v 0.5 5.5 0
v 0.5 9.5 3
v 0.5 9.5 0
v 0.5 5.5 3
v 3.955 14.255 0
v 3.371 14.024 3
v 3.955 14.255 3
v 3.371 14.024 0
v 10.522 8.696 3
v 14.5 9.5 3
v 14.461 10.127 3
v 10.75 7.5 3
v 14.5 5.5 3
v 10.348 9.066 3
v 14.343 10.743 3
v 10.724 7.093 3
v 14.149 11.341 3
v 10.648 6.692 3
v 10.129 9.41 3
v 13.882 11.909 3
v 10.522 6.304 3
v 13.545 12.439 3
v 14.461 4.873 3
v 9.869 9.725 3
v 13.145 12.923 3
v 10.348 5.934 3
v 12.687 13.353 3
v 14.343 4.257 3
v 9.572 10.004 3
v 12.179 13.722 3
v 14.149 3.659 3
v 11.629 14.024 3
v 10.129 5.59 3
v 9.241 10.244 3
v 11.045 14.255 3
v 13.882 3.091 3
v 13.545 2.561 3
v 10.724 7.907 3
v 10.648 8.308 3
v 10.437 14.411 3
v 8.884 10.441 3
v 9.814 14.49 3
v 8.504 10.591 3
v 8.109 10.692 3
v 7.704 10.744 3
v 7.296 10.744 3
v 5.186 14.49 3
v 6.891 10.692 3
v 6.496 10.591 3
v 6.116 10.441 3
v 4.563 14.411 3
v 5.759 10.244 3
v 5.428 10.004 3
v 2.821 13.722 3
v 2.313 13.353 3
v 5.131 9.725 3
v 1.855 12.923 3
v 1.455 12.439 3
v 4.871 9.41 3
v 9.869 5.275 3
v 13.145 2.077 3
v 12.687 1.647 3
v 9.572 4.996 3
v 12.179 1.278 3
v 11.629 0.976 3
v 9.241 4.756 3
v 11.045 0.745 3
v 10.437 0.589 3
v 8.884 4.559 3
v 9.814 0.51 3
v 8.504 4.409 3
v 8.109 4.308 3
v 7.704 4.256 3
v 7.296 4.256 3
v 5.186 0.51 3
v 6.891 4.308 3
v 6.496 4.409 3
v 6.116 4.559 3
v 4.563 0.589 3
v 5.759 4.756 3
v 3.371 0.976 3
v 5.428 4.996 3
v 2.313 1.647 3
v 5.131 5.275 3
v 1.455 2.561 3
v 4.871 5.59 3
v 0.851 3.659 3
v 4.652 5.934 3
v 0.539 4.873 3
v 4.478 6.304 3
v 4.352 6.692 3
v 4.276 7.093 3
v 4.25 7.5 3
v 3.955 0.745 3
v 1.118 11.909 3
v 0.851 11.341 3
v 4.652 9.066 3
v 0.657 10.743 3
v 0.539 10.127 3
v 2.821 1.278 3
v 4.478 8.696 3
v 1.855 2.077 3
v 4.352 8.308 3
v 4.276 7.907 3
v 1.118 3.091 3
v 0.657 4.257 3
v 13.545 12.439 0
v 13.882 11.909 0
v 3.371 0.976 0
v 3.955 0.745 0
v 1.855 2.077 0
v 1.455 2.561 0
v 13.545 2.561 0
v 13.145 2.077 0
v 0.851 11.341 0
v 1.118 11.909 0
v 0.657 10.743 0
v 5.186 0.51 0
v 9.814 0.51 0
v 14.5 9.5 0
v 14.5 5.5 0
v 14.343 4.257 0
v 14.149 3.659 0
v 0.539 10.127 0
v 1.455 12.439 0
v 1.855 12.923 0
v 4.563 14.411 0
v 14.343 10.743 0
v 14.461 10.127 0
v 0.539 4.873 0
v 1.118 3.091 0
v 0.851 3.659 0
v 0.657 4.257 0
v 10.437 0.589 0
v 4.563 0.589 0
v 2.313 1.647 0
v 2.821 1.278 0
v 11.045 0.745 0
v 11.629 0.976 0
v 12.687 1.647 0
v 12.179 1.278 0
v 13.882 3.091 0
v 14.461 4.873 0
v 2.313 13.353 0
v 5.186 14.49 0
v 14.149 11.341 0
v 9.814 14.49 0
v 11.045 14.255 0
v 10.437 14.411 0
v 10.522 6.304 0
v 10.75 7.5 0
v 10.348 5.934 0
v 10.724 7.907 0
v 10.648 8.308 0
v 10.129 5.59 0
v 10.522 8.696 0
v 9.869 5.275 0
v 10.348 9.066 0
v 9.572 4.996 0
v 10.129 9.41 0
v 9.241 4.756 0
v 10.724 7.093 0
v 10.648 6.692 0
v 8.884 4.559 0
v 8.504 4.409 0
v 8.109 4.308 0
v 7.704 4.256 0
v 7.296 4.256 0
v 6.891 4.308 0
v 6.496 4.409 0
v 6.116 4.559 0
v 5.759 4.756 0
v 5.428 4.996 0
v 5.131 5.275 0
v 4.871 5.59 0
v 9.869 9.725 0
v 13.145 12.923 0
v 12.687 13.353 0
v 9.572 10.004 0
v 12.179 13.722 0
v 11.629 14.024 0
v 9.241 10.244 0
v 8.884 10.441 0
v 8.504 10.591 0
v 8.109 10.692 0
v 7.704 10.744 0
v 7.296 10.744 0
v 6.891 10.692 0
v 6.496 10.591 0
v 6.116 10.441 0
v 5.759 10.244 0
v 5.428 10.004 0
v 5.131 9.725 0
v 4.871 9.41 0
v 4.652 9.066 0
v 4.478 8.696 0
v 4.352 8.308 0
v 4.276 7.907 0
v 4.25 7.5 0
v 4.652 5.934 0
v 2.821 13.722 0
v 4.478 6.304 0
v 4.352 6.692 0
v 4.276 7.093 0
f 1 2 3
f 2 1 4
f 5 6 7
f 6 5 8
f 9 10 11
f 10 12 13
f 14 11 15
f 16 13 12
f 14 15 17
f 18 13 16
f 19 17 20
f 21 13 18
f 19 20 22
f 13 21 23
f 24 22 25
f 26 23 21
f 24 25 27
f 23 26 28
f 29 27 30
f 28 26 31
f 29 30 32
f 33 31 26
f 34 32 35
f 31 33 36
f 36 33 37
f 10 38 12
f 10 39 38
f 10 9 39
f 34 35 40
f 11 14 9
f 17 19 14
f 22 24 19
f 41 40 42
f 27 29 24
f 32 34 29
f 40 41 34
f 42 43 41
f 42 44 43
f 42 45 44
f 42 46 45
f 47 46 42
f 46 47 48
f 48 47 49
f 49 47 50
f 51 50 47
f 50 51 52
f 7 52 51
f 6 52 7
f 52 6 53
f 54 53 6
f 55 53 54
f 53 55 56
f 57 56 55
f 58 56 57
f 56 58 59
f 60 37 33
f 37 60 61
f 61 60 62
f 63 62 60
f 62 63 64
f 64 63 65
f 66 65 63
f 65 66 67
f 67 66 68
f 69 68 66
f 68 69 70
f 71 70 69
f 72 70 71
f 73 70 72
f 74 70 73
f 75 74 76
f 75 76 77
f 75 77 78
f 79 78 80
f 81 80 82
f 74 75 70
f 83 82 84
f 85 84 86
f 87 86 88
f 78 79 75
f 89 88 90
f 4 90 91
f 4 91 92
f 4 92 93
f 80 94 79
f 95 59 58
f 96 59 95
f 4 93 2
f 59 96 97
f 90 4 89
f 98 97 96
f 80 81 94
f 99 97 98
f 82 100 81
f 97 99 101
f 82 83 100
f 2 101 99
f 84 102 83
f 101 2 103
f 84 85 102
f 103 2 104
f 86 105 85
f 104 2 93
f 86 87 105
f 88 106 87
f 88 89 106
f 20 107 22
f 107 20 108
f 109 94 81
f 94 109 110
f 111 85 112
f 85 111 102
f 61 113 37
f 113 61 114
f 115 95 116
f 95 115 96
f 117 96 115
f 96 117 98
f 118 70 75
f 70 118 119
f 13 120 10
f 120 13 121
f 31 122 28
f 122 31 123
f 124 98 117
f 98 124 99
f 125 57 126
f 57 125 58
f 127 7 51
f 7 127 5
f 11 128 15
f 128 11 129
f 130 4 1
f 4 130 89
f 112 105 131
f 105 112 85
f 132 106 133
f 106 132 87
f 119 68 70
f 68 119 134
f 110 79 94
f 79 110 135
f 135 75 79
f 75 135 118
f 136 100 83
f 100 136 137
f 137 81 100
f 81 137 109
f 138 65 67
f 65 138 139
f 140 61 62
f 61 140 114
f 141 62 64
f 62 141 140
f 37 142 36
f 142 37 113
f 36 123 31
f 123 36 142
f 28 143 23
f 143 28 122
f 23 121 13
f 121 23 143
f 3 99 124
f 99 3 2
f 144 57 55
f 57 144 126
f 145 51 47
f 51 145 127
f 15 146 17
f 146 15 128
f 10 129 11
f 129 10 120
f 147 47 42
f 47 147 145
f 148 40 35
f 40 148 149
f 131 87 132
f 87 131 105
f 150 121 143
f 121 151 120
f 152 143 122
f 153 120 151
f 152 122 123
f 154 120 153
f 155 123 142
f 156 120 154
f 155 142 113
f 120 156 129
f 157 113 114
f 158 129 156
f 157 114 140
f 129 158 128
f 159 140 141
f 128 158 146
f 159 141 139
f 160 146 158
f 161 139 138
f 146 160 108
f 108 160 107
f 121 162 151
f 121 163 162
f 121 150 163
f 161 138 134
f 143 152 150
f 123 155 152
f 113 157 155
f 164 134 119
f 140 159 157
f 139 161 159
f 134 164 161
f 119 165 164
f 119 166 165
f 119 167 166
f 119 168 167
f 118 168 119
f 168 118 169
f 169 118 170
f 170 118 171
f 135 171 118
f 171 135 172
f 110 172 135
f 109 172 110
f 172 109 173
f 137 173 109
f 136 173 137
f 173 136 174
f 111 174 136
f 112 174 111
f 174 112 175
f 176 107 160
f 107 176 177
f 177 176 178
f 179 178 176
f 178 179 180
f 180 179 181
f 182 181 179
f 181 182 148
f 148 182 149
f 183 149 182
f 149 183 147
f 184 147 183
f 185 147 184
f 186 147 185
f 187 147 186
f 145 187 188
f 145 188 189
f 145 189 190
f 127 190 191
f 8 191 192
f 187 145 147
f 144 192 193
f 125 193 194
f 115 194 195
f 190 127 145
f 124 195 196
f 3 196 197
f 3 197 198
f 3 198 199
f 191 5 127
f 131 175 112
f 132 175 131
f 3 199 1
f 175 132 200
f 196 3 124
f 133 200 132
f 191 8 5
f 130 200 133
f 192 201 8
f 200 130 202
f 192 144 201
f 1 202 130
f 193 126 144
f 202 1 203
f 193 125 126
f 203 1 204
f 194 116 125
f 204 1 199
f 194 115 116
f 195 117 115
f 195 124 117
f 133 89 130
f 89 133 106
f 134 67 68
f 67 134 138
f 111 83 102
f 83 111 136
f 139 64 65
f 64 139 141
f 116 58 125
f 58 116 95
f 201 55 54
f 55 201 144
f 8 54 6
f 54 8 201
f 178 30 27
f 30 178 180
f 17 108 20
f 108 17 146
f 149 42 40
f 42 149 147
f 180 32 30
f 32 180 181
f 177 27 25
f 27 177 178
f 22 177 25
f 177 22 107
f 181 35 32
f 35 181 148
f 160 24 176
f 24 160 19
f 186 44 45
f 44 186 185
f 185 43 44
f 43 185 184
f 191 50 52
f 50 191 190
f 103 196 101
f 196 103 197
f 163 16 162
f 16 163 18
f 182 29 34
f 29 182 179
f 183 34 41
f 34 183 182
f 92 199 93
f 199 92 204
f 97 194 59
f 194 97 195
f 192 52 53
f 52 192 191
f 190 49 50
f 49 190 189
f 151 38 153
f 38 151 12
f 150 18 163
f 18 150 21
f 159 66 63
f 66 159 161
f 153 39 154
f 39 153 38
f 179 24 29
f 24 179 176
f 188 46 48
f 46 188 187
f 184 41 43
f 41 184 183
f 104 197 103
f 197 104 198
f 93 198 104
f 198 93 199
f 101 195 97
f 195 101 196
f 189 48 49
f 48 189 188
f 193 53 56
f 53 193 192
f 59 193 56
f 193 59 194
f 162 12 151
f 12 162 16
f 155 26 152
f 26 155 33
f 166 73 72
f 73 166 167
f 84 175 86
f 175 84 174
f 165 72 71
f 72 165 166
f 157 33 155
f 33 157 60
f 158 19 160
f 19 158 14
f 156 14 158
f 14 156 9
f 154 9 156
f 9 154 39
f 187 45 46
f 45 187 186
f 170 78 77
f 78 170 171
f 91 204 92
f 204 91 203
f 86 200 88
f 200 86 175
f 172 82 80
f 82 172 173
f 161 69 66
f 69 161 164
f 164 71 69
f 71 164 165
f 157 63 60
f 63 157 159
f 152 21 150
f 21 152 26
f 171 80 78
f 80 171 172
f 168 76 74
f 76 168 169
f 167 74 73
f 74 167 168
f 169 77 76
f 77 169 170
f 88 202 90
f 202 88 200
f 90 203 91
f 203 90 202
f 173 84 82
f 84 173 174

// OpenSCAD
// Generated by SolidPython 1.1.3 on 2023-01-09 14:52:18
$fn = 50;


difference() {
	union() {
		translate(v = [7.5000000000, 7.5000000000, 0]) {
			rotate(a = [0, 0, 0]) {
				hull() {
					translate(v = [-2.0000000000, 2.0000000000, 0]) {
						rotate(a = [0, 0, 0]) {
							translate(v = [0, 0, 0]) {
								rotate(a = [0, 0, 0]) {
									cylinder(h = 3, r = 5);
								}
							}
						}
					}
					translate(v = [2.0000000000, 2.0000000000, 0]) {
						rotate(a = [0, 0, 0]) {
							translate(v = [0, 0, 0]) {
								rotate(a = [0, 0, 0]) {
									cylinder(h = 3, r = 5);
								}
							}
						}
					}
					translate(v = [-2.0000000000, -2.0000000000, 0]) {
						rotate(a = [0, 0, 0]) {
							translate(v = [0, 0, 0]) {
								rotate(a = [0, 0, 0]) {
									cylinder(h = 3, r = 5);
								}
							}
						}
					}
					translate(v = [2.0000000000, -2.0000000000, 0]) {
						rotate(a = [0, 0, 0]) {
							translate(v = [0, 0, 0]) {
								rotate(a = [0, 0, 0]) {
									cylinder(h = 3, r = 5);
								}
							}
						}
					}
				}
			}
		}
	}
	union() {
		translate(v = [7.5000000000, 7.5000000000, 0]) {
			rotate(a = [0, 0, 0]) {
				translate(v = [0, 0, -50]) {
					rotate(a = [0, 0, 0]) {
						cylinder(h = 100, r = 3.2500000000);
					}
				}
			}
		}
	}
}
/***********************************************
*********      SolidPython code:      **********
************************************************
 
from solid import *
import os
import subprocess

import oomB

import opsc_library_gen

mode = "laser"
#mode = "3d_print"

defined_objects = {}

radius_dict = {}
countersunk_dict = {}


def set_mode(m):
    global mode
    mode = m
    radius_dict['M6'] = 6.5/2
    radius_dict['M3'] = 3.3/2
    if mode == "laser":
        radius_dict['M6'] = 6/2
        radius_dict['M3'] = 3/2

    countersunk_dict['M3'] = {}
    countersunk_dict['M3']['little_rad'] = radius_dict['M3']
    countersunk_dict['M3']['big_rad'] = (5.5+0.6)/2
    if mode == "laser":
        countersunk_dict['M3']['big_rad'] = (4.75+0.6)/2
        countersunk_dict['M3']['little_rad'] = (4.75+0.6)/2

    countersunk_dict['M3']['height'] = 1.7


def opsc_make_object(filename, objects, save_type="none",resolution=50, layers = 1, tilediff = 200, mode="laser"):
    set_mode(mode)
    save_type = save_type.lower()
    os.makedirs(os.path.dirname(filename), exist_ok=True)
    final_object = opsc_get_object(objects)
    # Save the final object to the specified filename    
    scad_render_to_file(final_object, filename, file_header='$fn = %s;' % resolution, include_orig_code=True)
    if mode == "laser":
        filename_laser = filename.replace(".scad","-flat.scad")
        scad_render_to_file(getLaser(final_object, layers=layers, tilediff=tilediff), filename_laser, file_header='$fn = %s;' % resolution, include_orig_code=True)
        if save_type == "all":
            saveToAll(filename_laser)
        elif save_type == "dxf":
            saveToDxf(filename_laser)
    if save_type == "all":
        saveToAll(filename)
    elif save_type == "dxf":
        saveToDxf(filename)


def opsc_get_object(objects):
    # Create the solidpython objects
    positive_objects = [get_opsc_item(obj) for obj in objects if obj['type'] == 'positive']
    negative_objects = [get_opsc_item(obj) for obj in objects if obj['type'] == 'negative']
    # Union the positive objects
    positive_object = union()(*positive_objects)
    # Union the negative objects
    negative_object = union()(*negative_objects)
    # Create the final object by subtracting the negative objects from the positive objects
    return difference()(positive_object, negative_object)

def get_opsc_item(params):
    # A dictionary to map radius string values to numerical values
    #radius_dict = {'small': 5, 'medium': 10, 'large': 15}
    # An array of function names for basic shapes
    basic_shapes = ['cube', 'sphere', 'cylinder']
    
    # An array of function names for other shapes
    other_shapes = ['hole', 'slot', 'rounded_rectangle', 'countersunk']
    


    # Convert radius to r if present, and remove radius from the params dictionary
    if 'radius' in params:
        if isinstance(params['radius'], str):
            # Use the radius_dict to map the radius string value to a numerical value
            params['r'] = radius_dict[params['radius']]
        else:
            params['r'] = params['radius']
        del params['radius']
    

    # Check if the object type is a basic shape
    if params['shape'] in basic_shapes:
        # Remove shape and unexpected dictionary values
        allowed_keys = {'size', 'r', 'r1', 'r2', 'd', 'h', 'rw', 'rh', 'dw', 'dh'}
        shape_params = {k: v for k, v in params.items() if k in allowed_keys}

        # Call the corresponding function for the shape parameter, using ** notation to pass the shape_params dictionary as keyword arguments
        return get_opsc_transform(params,globals()[params['shape']](**shape_params))
    
    # If the object type is not a basic shape, check if it's a defined object or one of the other shapes
    elif params['shape'] in other_shapes:
        # Call the corresponding function for the shape parameter, passing the params dictionary as an argument
        p2 = copy.deepcopy(params)
        p2["pos"] = [0,0,0]
        return get_opsc_transform(params,globals()[params['shape']](p2))
    
    # If the object is not a basic shape or a defined object, try to import it from a .scad file
    else:
        obj = defined_objects[params['shape']]
        return get_opsc_transform(params,obj)

def get_opsc_transform(params, solid_obj):
    # Rotate the object based on the 'rot' field in the params dictionary, or the 'rotX', 'rotY', and 'rotZ' fields if 'rot' is not present
    rot = params.get('rot', [])
    if rot:
        rotX, rotY, rotZ = rot
    else:
        rotX = params.get('rotX', 0)
        rotY = params.get('rotY', 0)
        rotZ = params.get('rotZ', 0)
    solid_obj = rotate([rotX, rotY, rotZ])(solid_obj)

    # Translate the object based on the 'pos' field in the params dictionary, or the 'x', 'y', and 'z' fields if 'pos' is not present
    pos = params.get('pos', [])
    if pos:
        x, y, z = pos
    else:
        x = params.get('x', 0)
        y = params.get('y', 0)
        z = params.get('z', 0)
    solid_obj = translate([x, y, z])(solid_obj)
    return solid_obj


import random

def opsc_easy_array(type, shape, repeats, pos_start, shift_arr, **kwargs):
    for i in range(0,3):
        repeats.append(1)
        pos_start.append(0)
        shift_arr.append(0)
    return_objects = []

    for x in range(0,repeats[0]):
        for y in range(0,repeats[1]):
            for z in range(0,repeats[2]):
                return_objects.append(opsc_easy(type, shape, pos=[pos_start[0]+x*shift_arr[0],pos_start[1]+y*shift_arr[1],pos_start[2]+z*shift_arr[2]], **kwargs))
    return return_objects                



def opsc_easy(type, shape, **kwargs):
    obj = {
        'type': type,
        'shape': shape
    }
    for param in ['size', 'r', 'r1', 'r2', 'd', 'h', 'rw', 'rh', 'dw', 'dh', 'pos', 'x', 'y', 'z', 'rot', 'rotX', 'rotY', 'rotZ', "w"]:
        if param in kwargs:
            obj[param] = kwargs[param]
    return obj

def hole(params):
    p2 = copy.deepcopy(params)  
    # Check if the radius is a string and replace it with the corresponding value from the dictionary
    if isinstance(p2['r'], str):
        p2['r'] = radius_dict[p2['r']]
    
    # Set the height to 100 if not specified
    if 'h' not in p2:
        p2['h'] = 100
        p2["pos"] = [0,0,-50]
    p2["center"] = True
    # Create the cylinder object
    p2["shape"] = "cylinder"
    p2["type"] = "positive"

    return get_opsc_item(p2)

import copy

def countersunk(params):
    p2 = copy.deepcopy(params)
    counter_rad = p2['r']
    p2['r'] = radius_dict[p2['r']]
    hp = copy.deepcopy(p2)
    hp["type"] = "positive"
    hp["shape"] = "hole"
    del hp["rot"]
    hol = get_opsc_item(hp)
    
    cp = copy.deepcopy(p2)
    cp["h"] = countersunk_dict[counter_rad]["height"]
    cp["r2"] = countersunk_dict[counter_rad]["little_rad"]
    cp["r1"] = countersunk_dict[counter_rad]["big_rad"]
    del cp["r"]
    del cp["rot"]
    cp["type"] = "positive"
    cp["shape"] = "cylinder"
    cp["pos"] = [0,0,0]

    top = get_opsc_item(cp)
    return union()(hol,top)



def slot(params):  
    p2 = copy.deepcopy(params) 
    if isinstance(p2['r'], str):
        p2['r'] = radius_dict[p2['r']]
    p2["type"] = "positive"
    p2["shape"] = "hole"
    del p2["rot"]
    p2["pos"] = [0,0,0]
    left = copy.deepcopy(p2)
    right = copy.deepcopy(p2)
    left["pos"][0] = p2["w"] / 2 - p2["r"] 
    
    right["pos"][0] = -p2["w"] / 2 + p2["r"] 
    pass
    leftObj = get_opsc_item(left)
    rightObj = get_opsc_item(right)
    return hull()(leftObj, rightObj)

def rounded_rectangle(params):   
    p2 = copy.deepcopy(params) 
    p2["h"] = p2["size"][2]
    p2["pos"] = p2.get("pos", [0, 0, 0]) 
    p2["type"] = "positive"
    p2["shape"] = "hole"
    p2["pos"] = [0,0,0]
    
    if 'rot' in p2:
        del p2["rot"]   
    if 'r' not in p2:
        p2["r"] = 5 
    tl = copy.deepcopy(p2)
    tr = copy.deepcopy(p2)
    bl = copy.deepcopy(p2)
    br = copy.deepcopy(p2)
    tl["pos"][0] = -(p2["size"][0] - p2["r"]*2)/2
    tl["pos"][1] = (p2["size"][1] - p2["r"]*2)/2
    tr["pos"][0] = (p2["size"][0] - p2["r"]*2)/2
    tr["pos"][1] = (p2["size"][1] - p2["r"]*2)/2
    bl["pos"][0] = -(p2["size"][0] - p2["r"]*2)/2
    bl["pos"][1] = -(p2["size"][1] - p2["r"]*2)/2
    br["pos"][0] = (p2["size"][0] - p2["r"]*2)/2
    br["pos"][1] = -(p2["size"][1] - p2["r"]*2)/2
    del tl["size"]
    del tr["size"]
    del bl["size"]
    del br["size"]
    tlo = get_opsc_item(tl)
    tro = get_opsc_item(tr)
    blo = get_opsc_item(bl)
    bro = get_opsc_item(br)    
    return hull()(tlo, tro, blo, bro)



def import_scad_object(filename):
    # Import the .scad file and convert it to a solidpython object
    #filename = "parts"
    obj = import_scad(filename)
    return obj.main()
    


import os
import solid as solidpython

# A dictionary to store the defined objects


def load_scad_objects():
    opsc_library_gen.gen_library(defined_objects)

import random

def test(num_objects):
    objects = []
    for i in range(num_objects):
        # Choose a random shape
        #shape = random.choice(['cube', 'sphere', 'cylinder', 'hole', 'slot', "rounded_rectangle"])
        shape = random.choice(["rounded_rectangle"])

        # Choose a random type
        type = random.choice(['positive', 'negative'])
        
        # Create an empty object dictionary
        obj = {'shape': shape, 'type': type}
        
        # Set shape-specific parameters
        if obj['shape'] in ['cube']:
            obj['size'] =  [random.uniform(5, 15), random.uniform(5, 15), random.uniform(5, 15)]
        if obj['shape'] in ['rounded_rectangle']:
            obj['size'] =  [random.uniform(5, 15), random.uniform(5, 15), random.uniform(5, 15)]
            obj['r'] = random.uniform(0.5, 5)
        elif obj['shape'] == 'sphere':
            obj['r'] = random.uniform(5, 15)
        elif obj['shape'] in ['cylinder', 'hole']:
            obj['r'] = random.uniform(0.5, 5)
            obj['h'] = random.uniform(5, 15)
        elif obj['shape'] == 'slot':
            obj['r'] = random.uniform(0.5, 5)
            obj['h'] = random.uniform(5, 15)
            obj['w'] = random.uniform(5, 15)
        
        # Set a random position and rotation
        obj['pos'] = [random.uniform(-20, 20), random.uniform(-20, 20), random.uniform(-20, 20)]
        obj['rot'] = [random.uniform(-180, 180), random.uniform(-180, 180), random.uniform(-180, 180)]
        
        # Add the object to the list
        objects.append(obj)
    return objects

####### old file saving
def saveToAll(fileIn):
    saveToDxf(fileIn)
    saveToPng(fileIn)
    saveToStl(fileIn)
    saveToSvg(fileIn)

def saveToDxf(fileIn, fileOut="", copy_to_laser=True):
    if fileOut == "":
        fileOut = fileIn.replace(".scad",".dxf")
    saveToFile(fileIn, fileOut)


    
def saveToPng(fileIn, fileOut="",extra="--render"):
    if fileOut == "":
        fileOut = fileIn.replace(".scad",".png")
    saveToFile(fileIn, fileOut)

def saveToStl(fileIn, fileOut=""):
    if fileOut == "":
        fileOut = fileIn.replace(".scad",".stl")
    saveToFile(fileIn, fileOut)
    
def saveToSvg(fileIn, fileOut=""):
    if fileOut == "":
        fileOut = fileIn.replace(".scad",".svg")
    saveToFile(fileIn, fileOut)

def saveToFile(fileIn, fileOut,extra=""):
    #extra = extra + " --colorscheme Tomorrow"

    launchStr = 'openscad -o "' + fileOut + '"' + extra + ' "' + fileIn + '"'
    if ".png" in fileOut:
        launchStr = launchStr + " --render"
    print("            saveToFile launch string: " + launchStr)
    subprocess.run(launchStr)
    x=0

def getLaser(final_object,start=1.5,layers=1,thickness=3,tilediff=200):
        rv= []

        for x in range(layers):
            rv.append(translate([0,x*tilediff,0])(
                    projection()(
                        intersection()(translate([-500,-500,start+x*thickness])(cube(size=[1000,1000,0.1])),
                            final_object
                        )
                    )
            )
            )
            
        return union()(rv)

set_mode("laser")
load_scad_objects() 
 
************************************************/
